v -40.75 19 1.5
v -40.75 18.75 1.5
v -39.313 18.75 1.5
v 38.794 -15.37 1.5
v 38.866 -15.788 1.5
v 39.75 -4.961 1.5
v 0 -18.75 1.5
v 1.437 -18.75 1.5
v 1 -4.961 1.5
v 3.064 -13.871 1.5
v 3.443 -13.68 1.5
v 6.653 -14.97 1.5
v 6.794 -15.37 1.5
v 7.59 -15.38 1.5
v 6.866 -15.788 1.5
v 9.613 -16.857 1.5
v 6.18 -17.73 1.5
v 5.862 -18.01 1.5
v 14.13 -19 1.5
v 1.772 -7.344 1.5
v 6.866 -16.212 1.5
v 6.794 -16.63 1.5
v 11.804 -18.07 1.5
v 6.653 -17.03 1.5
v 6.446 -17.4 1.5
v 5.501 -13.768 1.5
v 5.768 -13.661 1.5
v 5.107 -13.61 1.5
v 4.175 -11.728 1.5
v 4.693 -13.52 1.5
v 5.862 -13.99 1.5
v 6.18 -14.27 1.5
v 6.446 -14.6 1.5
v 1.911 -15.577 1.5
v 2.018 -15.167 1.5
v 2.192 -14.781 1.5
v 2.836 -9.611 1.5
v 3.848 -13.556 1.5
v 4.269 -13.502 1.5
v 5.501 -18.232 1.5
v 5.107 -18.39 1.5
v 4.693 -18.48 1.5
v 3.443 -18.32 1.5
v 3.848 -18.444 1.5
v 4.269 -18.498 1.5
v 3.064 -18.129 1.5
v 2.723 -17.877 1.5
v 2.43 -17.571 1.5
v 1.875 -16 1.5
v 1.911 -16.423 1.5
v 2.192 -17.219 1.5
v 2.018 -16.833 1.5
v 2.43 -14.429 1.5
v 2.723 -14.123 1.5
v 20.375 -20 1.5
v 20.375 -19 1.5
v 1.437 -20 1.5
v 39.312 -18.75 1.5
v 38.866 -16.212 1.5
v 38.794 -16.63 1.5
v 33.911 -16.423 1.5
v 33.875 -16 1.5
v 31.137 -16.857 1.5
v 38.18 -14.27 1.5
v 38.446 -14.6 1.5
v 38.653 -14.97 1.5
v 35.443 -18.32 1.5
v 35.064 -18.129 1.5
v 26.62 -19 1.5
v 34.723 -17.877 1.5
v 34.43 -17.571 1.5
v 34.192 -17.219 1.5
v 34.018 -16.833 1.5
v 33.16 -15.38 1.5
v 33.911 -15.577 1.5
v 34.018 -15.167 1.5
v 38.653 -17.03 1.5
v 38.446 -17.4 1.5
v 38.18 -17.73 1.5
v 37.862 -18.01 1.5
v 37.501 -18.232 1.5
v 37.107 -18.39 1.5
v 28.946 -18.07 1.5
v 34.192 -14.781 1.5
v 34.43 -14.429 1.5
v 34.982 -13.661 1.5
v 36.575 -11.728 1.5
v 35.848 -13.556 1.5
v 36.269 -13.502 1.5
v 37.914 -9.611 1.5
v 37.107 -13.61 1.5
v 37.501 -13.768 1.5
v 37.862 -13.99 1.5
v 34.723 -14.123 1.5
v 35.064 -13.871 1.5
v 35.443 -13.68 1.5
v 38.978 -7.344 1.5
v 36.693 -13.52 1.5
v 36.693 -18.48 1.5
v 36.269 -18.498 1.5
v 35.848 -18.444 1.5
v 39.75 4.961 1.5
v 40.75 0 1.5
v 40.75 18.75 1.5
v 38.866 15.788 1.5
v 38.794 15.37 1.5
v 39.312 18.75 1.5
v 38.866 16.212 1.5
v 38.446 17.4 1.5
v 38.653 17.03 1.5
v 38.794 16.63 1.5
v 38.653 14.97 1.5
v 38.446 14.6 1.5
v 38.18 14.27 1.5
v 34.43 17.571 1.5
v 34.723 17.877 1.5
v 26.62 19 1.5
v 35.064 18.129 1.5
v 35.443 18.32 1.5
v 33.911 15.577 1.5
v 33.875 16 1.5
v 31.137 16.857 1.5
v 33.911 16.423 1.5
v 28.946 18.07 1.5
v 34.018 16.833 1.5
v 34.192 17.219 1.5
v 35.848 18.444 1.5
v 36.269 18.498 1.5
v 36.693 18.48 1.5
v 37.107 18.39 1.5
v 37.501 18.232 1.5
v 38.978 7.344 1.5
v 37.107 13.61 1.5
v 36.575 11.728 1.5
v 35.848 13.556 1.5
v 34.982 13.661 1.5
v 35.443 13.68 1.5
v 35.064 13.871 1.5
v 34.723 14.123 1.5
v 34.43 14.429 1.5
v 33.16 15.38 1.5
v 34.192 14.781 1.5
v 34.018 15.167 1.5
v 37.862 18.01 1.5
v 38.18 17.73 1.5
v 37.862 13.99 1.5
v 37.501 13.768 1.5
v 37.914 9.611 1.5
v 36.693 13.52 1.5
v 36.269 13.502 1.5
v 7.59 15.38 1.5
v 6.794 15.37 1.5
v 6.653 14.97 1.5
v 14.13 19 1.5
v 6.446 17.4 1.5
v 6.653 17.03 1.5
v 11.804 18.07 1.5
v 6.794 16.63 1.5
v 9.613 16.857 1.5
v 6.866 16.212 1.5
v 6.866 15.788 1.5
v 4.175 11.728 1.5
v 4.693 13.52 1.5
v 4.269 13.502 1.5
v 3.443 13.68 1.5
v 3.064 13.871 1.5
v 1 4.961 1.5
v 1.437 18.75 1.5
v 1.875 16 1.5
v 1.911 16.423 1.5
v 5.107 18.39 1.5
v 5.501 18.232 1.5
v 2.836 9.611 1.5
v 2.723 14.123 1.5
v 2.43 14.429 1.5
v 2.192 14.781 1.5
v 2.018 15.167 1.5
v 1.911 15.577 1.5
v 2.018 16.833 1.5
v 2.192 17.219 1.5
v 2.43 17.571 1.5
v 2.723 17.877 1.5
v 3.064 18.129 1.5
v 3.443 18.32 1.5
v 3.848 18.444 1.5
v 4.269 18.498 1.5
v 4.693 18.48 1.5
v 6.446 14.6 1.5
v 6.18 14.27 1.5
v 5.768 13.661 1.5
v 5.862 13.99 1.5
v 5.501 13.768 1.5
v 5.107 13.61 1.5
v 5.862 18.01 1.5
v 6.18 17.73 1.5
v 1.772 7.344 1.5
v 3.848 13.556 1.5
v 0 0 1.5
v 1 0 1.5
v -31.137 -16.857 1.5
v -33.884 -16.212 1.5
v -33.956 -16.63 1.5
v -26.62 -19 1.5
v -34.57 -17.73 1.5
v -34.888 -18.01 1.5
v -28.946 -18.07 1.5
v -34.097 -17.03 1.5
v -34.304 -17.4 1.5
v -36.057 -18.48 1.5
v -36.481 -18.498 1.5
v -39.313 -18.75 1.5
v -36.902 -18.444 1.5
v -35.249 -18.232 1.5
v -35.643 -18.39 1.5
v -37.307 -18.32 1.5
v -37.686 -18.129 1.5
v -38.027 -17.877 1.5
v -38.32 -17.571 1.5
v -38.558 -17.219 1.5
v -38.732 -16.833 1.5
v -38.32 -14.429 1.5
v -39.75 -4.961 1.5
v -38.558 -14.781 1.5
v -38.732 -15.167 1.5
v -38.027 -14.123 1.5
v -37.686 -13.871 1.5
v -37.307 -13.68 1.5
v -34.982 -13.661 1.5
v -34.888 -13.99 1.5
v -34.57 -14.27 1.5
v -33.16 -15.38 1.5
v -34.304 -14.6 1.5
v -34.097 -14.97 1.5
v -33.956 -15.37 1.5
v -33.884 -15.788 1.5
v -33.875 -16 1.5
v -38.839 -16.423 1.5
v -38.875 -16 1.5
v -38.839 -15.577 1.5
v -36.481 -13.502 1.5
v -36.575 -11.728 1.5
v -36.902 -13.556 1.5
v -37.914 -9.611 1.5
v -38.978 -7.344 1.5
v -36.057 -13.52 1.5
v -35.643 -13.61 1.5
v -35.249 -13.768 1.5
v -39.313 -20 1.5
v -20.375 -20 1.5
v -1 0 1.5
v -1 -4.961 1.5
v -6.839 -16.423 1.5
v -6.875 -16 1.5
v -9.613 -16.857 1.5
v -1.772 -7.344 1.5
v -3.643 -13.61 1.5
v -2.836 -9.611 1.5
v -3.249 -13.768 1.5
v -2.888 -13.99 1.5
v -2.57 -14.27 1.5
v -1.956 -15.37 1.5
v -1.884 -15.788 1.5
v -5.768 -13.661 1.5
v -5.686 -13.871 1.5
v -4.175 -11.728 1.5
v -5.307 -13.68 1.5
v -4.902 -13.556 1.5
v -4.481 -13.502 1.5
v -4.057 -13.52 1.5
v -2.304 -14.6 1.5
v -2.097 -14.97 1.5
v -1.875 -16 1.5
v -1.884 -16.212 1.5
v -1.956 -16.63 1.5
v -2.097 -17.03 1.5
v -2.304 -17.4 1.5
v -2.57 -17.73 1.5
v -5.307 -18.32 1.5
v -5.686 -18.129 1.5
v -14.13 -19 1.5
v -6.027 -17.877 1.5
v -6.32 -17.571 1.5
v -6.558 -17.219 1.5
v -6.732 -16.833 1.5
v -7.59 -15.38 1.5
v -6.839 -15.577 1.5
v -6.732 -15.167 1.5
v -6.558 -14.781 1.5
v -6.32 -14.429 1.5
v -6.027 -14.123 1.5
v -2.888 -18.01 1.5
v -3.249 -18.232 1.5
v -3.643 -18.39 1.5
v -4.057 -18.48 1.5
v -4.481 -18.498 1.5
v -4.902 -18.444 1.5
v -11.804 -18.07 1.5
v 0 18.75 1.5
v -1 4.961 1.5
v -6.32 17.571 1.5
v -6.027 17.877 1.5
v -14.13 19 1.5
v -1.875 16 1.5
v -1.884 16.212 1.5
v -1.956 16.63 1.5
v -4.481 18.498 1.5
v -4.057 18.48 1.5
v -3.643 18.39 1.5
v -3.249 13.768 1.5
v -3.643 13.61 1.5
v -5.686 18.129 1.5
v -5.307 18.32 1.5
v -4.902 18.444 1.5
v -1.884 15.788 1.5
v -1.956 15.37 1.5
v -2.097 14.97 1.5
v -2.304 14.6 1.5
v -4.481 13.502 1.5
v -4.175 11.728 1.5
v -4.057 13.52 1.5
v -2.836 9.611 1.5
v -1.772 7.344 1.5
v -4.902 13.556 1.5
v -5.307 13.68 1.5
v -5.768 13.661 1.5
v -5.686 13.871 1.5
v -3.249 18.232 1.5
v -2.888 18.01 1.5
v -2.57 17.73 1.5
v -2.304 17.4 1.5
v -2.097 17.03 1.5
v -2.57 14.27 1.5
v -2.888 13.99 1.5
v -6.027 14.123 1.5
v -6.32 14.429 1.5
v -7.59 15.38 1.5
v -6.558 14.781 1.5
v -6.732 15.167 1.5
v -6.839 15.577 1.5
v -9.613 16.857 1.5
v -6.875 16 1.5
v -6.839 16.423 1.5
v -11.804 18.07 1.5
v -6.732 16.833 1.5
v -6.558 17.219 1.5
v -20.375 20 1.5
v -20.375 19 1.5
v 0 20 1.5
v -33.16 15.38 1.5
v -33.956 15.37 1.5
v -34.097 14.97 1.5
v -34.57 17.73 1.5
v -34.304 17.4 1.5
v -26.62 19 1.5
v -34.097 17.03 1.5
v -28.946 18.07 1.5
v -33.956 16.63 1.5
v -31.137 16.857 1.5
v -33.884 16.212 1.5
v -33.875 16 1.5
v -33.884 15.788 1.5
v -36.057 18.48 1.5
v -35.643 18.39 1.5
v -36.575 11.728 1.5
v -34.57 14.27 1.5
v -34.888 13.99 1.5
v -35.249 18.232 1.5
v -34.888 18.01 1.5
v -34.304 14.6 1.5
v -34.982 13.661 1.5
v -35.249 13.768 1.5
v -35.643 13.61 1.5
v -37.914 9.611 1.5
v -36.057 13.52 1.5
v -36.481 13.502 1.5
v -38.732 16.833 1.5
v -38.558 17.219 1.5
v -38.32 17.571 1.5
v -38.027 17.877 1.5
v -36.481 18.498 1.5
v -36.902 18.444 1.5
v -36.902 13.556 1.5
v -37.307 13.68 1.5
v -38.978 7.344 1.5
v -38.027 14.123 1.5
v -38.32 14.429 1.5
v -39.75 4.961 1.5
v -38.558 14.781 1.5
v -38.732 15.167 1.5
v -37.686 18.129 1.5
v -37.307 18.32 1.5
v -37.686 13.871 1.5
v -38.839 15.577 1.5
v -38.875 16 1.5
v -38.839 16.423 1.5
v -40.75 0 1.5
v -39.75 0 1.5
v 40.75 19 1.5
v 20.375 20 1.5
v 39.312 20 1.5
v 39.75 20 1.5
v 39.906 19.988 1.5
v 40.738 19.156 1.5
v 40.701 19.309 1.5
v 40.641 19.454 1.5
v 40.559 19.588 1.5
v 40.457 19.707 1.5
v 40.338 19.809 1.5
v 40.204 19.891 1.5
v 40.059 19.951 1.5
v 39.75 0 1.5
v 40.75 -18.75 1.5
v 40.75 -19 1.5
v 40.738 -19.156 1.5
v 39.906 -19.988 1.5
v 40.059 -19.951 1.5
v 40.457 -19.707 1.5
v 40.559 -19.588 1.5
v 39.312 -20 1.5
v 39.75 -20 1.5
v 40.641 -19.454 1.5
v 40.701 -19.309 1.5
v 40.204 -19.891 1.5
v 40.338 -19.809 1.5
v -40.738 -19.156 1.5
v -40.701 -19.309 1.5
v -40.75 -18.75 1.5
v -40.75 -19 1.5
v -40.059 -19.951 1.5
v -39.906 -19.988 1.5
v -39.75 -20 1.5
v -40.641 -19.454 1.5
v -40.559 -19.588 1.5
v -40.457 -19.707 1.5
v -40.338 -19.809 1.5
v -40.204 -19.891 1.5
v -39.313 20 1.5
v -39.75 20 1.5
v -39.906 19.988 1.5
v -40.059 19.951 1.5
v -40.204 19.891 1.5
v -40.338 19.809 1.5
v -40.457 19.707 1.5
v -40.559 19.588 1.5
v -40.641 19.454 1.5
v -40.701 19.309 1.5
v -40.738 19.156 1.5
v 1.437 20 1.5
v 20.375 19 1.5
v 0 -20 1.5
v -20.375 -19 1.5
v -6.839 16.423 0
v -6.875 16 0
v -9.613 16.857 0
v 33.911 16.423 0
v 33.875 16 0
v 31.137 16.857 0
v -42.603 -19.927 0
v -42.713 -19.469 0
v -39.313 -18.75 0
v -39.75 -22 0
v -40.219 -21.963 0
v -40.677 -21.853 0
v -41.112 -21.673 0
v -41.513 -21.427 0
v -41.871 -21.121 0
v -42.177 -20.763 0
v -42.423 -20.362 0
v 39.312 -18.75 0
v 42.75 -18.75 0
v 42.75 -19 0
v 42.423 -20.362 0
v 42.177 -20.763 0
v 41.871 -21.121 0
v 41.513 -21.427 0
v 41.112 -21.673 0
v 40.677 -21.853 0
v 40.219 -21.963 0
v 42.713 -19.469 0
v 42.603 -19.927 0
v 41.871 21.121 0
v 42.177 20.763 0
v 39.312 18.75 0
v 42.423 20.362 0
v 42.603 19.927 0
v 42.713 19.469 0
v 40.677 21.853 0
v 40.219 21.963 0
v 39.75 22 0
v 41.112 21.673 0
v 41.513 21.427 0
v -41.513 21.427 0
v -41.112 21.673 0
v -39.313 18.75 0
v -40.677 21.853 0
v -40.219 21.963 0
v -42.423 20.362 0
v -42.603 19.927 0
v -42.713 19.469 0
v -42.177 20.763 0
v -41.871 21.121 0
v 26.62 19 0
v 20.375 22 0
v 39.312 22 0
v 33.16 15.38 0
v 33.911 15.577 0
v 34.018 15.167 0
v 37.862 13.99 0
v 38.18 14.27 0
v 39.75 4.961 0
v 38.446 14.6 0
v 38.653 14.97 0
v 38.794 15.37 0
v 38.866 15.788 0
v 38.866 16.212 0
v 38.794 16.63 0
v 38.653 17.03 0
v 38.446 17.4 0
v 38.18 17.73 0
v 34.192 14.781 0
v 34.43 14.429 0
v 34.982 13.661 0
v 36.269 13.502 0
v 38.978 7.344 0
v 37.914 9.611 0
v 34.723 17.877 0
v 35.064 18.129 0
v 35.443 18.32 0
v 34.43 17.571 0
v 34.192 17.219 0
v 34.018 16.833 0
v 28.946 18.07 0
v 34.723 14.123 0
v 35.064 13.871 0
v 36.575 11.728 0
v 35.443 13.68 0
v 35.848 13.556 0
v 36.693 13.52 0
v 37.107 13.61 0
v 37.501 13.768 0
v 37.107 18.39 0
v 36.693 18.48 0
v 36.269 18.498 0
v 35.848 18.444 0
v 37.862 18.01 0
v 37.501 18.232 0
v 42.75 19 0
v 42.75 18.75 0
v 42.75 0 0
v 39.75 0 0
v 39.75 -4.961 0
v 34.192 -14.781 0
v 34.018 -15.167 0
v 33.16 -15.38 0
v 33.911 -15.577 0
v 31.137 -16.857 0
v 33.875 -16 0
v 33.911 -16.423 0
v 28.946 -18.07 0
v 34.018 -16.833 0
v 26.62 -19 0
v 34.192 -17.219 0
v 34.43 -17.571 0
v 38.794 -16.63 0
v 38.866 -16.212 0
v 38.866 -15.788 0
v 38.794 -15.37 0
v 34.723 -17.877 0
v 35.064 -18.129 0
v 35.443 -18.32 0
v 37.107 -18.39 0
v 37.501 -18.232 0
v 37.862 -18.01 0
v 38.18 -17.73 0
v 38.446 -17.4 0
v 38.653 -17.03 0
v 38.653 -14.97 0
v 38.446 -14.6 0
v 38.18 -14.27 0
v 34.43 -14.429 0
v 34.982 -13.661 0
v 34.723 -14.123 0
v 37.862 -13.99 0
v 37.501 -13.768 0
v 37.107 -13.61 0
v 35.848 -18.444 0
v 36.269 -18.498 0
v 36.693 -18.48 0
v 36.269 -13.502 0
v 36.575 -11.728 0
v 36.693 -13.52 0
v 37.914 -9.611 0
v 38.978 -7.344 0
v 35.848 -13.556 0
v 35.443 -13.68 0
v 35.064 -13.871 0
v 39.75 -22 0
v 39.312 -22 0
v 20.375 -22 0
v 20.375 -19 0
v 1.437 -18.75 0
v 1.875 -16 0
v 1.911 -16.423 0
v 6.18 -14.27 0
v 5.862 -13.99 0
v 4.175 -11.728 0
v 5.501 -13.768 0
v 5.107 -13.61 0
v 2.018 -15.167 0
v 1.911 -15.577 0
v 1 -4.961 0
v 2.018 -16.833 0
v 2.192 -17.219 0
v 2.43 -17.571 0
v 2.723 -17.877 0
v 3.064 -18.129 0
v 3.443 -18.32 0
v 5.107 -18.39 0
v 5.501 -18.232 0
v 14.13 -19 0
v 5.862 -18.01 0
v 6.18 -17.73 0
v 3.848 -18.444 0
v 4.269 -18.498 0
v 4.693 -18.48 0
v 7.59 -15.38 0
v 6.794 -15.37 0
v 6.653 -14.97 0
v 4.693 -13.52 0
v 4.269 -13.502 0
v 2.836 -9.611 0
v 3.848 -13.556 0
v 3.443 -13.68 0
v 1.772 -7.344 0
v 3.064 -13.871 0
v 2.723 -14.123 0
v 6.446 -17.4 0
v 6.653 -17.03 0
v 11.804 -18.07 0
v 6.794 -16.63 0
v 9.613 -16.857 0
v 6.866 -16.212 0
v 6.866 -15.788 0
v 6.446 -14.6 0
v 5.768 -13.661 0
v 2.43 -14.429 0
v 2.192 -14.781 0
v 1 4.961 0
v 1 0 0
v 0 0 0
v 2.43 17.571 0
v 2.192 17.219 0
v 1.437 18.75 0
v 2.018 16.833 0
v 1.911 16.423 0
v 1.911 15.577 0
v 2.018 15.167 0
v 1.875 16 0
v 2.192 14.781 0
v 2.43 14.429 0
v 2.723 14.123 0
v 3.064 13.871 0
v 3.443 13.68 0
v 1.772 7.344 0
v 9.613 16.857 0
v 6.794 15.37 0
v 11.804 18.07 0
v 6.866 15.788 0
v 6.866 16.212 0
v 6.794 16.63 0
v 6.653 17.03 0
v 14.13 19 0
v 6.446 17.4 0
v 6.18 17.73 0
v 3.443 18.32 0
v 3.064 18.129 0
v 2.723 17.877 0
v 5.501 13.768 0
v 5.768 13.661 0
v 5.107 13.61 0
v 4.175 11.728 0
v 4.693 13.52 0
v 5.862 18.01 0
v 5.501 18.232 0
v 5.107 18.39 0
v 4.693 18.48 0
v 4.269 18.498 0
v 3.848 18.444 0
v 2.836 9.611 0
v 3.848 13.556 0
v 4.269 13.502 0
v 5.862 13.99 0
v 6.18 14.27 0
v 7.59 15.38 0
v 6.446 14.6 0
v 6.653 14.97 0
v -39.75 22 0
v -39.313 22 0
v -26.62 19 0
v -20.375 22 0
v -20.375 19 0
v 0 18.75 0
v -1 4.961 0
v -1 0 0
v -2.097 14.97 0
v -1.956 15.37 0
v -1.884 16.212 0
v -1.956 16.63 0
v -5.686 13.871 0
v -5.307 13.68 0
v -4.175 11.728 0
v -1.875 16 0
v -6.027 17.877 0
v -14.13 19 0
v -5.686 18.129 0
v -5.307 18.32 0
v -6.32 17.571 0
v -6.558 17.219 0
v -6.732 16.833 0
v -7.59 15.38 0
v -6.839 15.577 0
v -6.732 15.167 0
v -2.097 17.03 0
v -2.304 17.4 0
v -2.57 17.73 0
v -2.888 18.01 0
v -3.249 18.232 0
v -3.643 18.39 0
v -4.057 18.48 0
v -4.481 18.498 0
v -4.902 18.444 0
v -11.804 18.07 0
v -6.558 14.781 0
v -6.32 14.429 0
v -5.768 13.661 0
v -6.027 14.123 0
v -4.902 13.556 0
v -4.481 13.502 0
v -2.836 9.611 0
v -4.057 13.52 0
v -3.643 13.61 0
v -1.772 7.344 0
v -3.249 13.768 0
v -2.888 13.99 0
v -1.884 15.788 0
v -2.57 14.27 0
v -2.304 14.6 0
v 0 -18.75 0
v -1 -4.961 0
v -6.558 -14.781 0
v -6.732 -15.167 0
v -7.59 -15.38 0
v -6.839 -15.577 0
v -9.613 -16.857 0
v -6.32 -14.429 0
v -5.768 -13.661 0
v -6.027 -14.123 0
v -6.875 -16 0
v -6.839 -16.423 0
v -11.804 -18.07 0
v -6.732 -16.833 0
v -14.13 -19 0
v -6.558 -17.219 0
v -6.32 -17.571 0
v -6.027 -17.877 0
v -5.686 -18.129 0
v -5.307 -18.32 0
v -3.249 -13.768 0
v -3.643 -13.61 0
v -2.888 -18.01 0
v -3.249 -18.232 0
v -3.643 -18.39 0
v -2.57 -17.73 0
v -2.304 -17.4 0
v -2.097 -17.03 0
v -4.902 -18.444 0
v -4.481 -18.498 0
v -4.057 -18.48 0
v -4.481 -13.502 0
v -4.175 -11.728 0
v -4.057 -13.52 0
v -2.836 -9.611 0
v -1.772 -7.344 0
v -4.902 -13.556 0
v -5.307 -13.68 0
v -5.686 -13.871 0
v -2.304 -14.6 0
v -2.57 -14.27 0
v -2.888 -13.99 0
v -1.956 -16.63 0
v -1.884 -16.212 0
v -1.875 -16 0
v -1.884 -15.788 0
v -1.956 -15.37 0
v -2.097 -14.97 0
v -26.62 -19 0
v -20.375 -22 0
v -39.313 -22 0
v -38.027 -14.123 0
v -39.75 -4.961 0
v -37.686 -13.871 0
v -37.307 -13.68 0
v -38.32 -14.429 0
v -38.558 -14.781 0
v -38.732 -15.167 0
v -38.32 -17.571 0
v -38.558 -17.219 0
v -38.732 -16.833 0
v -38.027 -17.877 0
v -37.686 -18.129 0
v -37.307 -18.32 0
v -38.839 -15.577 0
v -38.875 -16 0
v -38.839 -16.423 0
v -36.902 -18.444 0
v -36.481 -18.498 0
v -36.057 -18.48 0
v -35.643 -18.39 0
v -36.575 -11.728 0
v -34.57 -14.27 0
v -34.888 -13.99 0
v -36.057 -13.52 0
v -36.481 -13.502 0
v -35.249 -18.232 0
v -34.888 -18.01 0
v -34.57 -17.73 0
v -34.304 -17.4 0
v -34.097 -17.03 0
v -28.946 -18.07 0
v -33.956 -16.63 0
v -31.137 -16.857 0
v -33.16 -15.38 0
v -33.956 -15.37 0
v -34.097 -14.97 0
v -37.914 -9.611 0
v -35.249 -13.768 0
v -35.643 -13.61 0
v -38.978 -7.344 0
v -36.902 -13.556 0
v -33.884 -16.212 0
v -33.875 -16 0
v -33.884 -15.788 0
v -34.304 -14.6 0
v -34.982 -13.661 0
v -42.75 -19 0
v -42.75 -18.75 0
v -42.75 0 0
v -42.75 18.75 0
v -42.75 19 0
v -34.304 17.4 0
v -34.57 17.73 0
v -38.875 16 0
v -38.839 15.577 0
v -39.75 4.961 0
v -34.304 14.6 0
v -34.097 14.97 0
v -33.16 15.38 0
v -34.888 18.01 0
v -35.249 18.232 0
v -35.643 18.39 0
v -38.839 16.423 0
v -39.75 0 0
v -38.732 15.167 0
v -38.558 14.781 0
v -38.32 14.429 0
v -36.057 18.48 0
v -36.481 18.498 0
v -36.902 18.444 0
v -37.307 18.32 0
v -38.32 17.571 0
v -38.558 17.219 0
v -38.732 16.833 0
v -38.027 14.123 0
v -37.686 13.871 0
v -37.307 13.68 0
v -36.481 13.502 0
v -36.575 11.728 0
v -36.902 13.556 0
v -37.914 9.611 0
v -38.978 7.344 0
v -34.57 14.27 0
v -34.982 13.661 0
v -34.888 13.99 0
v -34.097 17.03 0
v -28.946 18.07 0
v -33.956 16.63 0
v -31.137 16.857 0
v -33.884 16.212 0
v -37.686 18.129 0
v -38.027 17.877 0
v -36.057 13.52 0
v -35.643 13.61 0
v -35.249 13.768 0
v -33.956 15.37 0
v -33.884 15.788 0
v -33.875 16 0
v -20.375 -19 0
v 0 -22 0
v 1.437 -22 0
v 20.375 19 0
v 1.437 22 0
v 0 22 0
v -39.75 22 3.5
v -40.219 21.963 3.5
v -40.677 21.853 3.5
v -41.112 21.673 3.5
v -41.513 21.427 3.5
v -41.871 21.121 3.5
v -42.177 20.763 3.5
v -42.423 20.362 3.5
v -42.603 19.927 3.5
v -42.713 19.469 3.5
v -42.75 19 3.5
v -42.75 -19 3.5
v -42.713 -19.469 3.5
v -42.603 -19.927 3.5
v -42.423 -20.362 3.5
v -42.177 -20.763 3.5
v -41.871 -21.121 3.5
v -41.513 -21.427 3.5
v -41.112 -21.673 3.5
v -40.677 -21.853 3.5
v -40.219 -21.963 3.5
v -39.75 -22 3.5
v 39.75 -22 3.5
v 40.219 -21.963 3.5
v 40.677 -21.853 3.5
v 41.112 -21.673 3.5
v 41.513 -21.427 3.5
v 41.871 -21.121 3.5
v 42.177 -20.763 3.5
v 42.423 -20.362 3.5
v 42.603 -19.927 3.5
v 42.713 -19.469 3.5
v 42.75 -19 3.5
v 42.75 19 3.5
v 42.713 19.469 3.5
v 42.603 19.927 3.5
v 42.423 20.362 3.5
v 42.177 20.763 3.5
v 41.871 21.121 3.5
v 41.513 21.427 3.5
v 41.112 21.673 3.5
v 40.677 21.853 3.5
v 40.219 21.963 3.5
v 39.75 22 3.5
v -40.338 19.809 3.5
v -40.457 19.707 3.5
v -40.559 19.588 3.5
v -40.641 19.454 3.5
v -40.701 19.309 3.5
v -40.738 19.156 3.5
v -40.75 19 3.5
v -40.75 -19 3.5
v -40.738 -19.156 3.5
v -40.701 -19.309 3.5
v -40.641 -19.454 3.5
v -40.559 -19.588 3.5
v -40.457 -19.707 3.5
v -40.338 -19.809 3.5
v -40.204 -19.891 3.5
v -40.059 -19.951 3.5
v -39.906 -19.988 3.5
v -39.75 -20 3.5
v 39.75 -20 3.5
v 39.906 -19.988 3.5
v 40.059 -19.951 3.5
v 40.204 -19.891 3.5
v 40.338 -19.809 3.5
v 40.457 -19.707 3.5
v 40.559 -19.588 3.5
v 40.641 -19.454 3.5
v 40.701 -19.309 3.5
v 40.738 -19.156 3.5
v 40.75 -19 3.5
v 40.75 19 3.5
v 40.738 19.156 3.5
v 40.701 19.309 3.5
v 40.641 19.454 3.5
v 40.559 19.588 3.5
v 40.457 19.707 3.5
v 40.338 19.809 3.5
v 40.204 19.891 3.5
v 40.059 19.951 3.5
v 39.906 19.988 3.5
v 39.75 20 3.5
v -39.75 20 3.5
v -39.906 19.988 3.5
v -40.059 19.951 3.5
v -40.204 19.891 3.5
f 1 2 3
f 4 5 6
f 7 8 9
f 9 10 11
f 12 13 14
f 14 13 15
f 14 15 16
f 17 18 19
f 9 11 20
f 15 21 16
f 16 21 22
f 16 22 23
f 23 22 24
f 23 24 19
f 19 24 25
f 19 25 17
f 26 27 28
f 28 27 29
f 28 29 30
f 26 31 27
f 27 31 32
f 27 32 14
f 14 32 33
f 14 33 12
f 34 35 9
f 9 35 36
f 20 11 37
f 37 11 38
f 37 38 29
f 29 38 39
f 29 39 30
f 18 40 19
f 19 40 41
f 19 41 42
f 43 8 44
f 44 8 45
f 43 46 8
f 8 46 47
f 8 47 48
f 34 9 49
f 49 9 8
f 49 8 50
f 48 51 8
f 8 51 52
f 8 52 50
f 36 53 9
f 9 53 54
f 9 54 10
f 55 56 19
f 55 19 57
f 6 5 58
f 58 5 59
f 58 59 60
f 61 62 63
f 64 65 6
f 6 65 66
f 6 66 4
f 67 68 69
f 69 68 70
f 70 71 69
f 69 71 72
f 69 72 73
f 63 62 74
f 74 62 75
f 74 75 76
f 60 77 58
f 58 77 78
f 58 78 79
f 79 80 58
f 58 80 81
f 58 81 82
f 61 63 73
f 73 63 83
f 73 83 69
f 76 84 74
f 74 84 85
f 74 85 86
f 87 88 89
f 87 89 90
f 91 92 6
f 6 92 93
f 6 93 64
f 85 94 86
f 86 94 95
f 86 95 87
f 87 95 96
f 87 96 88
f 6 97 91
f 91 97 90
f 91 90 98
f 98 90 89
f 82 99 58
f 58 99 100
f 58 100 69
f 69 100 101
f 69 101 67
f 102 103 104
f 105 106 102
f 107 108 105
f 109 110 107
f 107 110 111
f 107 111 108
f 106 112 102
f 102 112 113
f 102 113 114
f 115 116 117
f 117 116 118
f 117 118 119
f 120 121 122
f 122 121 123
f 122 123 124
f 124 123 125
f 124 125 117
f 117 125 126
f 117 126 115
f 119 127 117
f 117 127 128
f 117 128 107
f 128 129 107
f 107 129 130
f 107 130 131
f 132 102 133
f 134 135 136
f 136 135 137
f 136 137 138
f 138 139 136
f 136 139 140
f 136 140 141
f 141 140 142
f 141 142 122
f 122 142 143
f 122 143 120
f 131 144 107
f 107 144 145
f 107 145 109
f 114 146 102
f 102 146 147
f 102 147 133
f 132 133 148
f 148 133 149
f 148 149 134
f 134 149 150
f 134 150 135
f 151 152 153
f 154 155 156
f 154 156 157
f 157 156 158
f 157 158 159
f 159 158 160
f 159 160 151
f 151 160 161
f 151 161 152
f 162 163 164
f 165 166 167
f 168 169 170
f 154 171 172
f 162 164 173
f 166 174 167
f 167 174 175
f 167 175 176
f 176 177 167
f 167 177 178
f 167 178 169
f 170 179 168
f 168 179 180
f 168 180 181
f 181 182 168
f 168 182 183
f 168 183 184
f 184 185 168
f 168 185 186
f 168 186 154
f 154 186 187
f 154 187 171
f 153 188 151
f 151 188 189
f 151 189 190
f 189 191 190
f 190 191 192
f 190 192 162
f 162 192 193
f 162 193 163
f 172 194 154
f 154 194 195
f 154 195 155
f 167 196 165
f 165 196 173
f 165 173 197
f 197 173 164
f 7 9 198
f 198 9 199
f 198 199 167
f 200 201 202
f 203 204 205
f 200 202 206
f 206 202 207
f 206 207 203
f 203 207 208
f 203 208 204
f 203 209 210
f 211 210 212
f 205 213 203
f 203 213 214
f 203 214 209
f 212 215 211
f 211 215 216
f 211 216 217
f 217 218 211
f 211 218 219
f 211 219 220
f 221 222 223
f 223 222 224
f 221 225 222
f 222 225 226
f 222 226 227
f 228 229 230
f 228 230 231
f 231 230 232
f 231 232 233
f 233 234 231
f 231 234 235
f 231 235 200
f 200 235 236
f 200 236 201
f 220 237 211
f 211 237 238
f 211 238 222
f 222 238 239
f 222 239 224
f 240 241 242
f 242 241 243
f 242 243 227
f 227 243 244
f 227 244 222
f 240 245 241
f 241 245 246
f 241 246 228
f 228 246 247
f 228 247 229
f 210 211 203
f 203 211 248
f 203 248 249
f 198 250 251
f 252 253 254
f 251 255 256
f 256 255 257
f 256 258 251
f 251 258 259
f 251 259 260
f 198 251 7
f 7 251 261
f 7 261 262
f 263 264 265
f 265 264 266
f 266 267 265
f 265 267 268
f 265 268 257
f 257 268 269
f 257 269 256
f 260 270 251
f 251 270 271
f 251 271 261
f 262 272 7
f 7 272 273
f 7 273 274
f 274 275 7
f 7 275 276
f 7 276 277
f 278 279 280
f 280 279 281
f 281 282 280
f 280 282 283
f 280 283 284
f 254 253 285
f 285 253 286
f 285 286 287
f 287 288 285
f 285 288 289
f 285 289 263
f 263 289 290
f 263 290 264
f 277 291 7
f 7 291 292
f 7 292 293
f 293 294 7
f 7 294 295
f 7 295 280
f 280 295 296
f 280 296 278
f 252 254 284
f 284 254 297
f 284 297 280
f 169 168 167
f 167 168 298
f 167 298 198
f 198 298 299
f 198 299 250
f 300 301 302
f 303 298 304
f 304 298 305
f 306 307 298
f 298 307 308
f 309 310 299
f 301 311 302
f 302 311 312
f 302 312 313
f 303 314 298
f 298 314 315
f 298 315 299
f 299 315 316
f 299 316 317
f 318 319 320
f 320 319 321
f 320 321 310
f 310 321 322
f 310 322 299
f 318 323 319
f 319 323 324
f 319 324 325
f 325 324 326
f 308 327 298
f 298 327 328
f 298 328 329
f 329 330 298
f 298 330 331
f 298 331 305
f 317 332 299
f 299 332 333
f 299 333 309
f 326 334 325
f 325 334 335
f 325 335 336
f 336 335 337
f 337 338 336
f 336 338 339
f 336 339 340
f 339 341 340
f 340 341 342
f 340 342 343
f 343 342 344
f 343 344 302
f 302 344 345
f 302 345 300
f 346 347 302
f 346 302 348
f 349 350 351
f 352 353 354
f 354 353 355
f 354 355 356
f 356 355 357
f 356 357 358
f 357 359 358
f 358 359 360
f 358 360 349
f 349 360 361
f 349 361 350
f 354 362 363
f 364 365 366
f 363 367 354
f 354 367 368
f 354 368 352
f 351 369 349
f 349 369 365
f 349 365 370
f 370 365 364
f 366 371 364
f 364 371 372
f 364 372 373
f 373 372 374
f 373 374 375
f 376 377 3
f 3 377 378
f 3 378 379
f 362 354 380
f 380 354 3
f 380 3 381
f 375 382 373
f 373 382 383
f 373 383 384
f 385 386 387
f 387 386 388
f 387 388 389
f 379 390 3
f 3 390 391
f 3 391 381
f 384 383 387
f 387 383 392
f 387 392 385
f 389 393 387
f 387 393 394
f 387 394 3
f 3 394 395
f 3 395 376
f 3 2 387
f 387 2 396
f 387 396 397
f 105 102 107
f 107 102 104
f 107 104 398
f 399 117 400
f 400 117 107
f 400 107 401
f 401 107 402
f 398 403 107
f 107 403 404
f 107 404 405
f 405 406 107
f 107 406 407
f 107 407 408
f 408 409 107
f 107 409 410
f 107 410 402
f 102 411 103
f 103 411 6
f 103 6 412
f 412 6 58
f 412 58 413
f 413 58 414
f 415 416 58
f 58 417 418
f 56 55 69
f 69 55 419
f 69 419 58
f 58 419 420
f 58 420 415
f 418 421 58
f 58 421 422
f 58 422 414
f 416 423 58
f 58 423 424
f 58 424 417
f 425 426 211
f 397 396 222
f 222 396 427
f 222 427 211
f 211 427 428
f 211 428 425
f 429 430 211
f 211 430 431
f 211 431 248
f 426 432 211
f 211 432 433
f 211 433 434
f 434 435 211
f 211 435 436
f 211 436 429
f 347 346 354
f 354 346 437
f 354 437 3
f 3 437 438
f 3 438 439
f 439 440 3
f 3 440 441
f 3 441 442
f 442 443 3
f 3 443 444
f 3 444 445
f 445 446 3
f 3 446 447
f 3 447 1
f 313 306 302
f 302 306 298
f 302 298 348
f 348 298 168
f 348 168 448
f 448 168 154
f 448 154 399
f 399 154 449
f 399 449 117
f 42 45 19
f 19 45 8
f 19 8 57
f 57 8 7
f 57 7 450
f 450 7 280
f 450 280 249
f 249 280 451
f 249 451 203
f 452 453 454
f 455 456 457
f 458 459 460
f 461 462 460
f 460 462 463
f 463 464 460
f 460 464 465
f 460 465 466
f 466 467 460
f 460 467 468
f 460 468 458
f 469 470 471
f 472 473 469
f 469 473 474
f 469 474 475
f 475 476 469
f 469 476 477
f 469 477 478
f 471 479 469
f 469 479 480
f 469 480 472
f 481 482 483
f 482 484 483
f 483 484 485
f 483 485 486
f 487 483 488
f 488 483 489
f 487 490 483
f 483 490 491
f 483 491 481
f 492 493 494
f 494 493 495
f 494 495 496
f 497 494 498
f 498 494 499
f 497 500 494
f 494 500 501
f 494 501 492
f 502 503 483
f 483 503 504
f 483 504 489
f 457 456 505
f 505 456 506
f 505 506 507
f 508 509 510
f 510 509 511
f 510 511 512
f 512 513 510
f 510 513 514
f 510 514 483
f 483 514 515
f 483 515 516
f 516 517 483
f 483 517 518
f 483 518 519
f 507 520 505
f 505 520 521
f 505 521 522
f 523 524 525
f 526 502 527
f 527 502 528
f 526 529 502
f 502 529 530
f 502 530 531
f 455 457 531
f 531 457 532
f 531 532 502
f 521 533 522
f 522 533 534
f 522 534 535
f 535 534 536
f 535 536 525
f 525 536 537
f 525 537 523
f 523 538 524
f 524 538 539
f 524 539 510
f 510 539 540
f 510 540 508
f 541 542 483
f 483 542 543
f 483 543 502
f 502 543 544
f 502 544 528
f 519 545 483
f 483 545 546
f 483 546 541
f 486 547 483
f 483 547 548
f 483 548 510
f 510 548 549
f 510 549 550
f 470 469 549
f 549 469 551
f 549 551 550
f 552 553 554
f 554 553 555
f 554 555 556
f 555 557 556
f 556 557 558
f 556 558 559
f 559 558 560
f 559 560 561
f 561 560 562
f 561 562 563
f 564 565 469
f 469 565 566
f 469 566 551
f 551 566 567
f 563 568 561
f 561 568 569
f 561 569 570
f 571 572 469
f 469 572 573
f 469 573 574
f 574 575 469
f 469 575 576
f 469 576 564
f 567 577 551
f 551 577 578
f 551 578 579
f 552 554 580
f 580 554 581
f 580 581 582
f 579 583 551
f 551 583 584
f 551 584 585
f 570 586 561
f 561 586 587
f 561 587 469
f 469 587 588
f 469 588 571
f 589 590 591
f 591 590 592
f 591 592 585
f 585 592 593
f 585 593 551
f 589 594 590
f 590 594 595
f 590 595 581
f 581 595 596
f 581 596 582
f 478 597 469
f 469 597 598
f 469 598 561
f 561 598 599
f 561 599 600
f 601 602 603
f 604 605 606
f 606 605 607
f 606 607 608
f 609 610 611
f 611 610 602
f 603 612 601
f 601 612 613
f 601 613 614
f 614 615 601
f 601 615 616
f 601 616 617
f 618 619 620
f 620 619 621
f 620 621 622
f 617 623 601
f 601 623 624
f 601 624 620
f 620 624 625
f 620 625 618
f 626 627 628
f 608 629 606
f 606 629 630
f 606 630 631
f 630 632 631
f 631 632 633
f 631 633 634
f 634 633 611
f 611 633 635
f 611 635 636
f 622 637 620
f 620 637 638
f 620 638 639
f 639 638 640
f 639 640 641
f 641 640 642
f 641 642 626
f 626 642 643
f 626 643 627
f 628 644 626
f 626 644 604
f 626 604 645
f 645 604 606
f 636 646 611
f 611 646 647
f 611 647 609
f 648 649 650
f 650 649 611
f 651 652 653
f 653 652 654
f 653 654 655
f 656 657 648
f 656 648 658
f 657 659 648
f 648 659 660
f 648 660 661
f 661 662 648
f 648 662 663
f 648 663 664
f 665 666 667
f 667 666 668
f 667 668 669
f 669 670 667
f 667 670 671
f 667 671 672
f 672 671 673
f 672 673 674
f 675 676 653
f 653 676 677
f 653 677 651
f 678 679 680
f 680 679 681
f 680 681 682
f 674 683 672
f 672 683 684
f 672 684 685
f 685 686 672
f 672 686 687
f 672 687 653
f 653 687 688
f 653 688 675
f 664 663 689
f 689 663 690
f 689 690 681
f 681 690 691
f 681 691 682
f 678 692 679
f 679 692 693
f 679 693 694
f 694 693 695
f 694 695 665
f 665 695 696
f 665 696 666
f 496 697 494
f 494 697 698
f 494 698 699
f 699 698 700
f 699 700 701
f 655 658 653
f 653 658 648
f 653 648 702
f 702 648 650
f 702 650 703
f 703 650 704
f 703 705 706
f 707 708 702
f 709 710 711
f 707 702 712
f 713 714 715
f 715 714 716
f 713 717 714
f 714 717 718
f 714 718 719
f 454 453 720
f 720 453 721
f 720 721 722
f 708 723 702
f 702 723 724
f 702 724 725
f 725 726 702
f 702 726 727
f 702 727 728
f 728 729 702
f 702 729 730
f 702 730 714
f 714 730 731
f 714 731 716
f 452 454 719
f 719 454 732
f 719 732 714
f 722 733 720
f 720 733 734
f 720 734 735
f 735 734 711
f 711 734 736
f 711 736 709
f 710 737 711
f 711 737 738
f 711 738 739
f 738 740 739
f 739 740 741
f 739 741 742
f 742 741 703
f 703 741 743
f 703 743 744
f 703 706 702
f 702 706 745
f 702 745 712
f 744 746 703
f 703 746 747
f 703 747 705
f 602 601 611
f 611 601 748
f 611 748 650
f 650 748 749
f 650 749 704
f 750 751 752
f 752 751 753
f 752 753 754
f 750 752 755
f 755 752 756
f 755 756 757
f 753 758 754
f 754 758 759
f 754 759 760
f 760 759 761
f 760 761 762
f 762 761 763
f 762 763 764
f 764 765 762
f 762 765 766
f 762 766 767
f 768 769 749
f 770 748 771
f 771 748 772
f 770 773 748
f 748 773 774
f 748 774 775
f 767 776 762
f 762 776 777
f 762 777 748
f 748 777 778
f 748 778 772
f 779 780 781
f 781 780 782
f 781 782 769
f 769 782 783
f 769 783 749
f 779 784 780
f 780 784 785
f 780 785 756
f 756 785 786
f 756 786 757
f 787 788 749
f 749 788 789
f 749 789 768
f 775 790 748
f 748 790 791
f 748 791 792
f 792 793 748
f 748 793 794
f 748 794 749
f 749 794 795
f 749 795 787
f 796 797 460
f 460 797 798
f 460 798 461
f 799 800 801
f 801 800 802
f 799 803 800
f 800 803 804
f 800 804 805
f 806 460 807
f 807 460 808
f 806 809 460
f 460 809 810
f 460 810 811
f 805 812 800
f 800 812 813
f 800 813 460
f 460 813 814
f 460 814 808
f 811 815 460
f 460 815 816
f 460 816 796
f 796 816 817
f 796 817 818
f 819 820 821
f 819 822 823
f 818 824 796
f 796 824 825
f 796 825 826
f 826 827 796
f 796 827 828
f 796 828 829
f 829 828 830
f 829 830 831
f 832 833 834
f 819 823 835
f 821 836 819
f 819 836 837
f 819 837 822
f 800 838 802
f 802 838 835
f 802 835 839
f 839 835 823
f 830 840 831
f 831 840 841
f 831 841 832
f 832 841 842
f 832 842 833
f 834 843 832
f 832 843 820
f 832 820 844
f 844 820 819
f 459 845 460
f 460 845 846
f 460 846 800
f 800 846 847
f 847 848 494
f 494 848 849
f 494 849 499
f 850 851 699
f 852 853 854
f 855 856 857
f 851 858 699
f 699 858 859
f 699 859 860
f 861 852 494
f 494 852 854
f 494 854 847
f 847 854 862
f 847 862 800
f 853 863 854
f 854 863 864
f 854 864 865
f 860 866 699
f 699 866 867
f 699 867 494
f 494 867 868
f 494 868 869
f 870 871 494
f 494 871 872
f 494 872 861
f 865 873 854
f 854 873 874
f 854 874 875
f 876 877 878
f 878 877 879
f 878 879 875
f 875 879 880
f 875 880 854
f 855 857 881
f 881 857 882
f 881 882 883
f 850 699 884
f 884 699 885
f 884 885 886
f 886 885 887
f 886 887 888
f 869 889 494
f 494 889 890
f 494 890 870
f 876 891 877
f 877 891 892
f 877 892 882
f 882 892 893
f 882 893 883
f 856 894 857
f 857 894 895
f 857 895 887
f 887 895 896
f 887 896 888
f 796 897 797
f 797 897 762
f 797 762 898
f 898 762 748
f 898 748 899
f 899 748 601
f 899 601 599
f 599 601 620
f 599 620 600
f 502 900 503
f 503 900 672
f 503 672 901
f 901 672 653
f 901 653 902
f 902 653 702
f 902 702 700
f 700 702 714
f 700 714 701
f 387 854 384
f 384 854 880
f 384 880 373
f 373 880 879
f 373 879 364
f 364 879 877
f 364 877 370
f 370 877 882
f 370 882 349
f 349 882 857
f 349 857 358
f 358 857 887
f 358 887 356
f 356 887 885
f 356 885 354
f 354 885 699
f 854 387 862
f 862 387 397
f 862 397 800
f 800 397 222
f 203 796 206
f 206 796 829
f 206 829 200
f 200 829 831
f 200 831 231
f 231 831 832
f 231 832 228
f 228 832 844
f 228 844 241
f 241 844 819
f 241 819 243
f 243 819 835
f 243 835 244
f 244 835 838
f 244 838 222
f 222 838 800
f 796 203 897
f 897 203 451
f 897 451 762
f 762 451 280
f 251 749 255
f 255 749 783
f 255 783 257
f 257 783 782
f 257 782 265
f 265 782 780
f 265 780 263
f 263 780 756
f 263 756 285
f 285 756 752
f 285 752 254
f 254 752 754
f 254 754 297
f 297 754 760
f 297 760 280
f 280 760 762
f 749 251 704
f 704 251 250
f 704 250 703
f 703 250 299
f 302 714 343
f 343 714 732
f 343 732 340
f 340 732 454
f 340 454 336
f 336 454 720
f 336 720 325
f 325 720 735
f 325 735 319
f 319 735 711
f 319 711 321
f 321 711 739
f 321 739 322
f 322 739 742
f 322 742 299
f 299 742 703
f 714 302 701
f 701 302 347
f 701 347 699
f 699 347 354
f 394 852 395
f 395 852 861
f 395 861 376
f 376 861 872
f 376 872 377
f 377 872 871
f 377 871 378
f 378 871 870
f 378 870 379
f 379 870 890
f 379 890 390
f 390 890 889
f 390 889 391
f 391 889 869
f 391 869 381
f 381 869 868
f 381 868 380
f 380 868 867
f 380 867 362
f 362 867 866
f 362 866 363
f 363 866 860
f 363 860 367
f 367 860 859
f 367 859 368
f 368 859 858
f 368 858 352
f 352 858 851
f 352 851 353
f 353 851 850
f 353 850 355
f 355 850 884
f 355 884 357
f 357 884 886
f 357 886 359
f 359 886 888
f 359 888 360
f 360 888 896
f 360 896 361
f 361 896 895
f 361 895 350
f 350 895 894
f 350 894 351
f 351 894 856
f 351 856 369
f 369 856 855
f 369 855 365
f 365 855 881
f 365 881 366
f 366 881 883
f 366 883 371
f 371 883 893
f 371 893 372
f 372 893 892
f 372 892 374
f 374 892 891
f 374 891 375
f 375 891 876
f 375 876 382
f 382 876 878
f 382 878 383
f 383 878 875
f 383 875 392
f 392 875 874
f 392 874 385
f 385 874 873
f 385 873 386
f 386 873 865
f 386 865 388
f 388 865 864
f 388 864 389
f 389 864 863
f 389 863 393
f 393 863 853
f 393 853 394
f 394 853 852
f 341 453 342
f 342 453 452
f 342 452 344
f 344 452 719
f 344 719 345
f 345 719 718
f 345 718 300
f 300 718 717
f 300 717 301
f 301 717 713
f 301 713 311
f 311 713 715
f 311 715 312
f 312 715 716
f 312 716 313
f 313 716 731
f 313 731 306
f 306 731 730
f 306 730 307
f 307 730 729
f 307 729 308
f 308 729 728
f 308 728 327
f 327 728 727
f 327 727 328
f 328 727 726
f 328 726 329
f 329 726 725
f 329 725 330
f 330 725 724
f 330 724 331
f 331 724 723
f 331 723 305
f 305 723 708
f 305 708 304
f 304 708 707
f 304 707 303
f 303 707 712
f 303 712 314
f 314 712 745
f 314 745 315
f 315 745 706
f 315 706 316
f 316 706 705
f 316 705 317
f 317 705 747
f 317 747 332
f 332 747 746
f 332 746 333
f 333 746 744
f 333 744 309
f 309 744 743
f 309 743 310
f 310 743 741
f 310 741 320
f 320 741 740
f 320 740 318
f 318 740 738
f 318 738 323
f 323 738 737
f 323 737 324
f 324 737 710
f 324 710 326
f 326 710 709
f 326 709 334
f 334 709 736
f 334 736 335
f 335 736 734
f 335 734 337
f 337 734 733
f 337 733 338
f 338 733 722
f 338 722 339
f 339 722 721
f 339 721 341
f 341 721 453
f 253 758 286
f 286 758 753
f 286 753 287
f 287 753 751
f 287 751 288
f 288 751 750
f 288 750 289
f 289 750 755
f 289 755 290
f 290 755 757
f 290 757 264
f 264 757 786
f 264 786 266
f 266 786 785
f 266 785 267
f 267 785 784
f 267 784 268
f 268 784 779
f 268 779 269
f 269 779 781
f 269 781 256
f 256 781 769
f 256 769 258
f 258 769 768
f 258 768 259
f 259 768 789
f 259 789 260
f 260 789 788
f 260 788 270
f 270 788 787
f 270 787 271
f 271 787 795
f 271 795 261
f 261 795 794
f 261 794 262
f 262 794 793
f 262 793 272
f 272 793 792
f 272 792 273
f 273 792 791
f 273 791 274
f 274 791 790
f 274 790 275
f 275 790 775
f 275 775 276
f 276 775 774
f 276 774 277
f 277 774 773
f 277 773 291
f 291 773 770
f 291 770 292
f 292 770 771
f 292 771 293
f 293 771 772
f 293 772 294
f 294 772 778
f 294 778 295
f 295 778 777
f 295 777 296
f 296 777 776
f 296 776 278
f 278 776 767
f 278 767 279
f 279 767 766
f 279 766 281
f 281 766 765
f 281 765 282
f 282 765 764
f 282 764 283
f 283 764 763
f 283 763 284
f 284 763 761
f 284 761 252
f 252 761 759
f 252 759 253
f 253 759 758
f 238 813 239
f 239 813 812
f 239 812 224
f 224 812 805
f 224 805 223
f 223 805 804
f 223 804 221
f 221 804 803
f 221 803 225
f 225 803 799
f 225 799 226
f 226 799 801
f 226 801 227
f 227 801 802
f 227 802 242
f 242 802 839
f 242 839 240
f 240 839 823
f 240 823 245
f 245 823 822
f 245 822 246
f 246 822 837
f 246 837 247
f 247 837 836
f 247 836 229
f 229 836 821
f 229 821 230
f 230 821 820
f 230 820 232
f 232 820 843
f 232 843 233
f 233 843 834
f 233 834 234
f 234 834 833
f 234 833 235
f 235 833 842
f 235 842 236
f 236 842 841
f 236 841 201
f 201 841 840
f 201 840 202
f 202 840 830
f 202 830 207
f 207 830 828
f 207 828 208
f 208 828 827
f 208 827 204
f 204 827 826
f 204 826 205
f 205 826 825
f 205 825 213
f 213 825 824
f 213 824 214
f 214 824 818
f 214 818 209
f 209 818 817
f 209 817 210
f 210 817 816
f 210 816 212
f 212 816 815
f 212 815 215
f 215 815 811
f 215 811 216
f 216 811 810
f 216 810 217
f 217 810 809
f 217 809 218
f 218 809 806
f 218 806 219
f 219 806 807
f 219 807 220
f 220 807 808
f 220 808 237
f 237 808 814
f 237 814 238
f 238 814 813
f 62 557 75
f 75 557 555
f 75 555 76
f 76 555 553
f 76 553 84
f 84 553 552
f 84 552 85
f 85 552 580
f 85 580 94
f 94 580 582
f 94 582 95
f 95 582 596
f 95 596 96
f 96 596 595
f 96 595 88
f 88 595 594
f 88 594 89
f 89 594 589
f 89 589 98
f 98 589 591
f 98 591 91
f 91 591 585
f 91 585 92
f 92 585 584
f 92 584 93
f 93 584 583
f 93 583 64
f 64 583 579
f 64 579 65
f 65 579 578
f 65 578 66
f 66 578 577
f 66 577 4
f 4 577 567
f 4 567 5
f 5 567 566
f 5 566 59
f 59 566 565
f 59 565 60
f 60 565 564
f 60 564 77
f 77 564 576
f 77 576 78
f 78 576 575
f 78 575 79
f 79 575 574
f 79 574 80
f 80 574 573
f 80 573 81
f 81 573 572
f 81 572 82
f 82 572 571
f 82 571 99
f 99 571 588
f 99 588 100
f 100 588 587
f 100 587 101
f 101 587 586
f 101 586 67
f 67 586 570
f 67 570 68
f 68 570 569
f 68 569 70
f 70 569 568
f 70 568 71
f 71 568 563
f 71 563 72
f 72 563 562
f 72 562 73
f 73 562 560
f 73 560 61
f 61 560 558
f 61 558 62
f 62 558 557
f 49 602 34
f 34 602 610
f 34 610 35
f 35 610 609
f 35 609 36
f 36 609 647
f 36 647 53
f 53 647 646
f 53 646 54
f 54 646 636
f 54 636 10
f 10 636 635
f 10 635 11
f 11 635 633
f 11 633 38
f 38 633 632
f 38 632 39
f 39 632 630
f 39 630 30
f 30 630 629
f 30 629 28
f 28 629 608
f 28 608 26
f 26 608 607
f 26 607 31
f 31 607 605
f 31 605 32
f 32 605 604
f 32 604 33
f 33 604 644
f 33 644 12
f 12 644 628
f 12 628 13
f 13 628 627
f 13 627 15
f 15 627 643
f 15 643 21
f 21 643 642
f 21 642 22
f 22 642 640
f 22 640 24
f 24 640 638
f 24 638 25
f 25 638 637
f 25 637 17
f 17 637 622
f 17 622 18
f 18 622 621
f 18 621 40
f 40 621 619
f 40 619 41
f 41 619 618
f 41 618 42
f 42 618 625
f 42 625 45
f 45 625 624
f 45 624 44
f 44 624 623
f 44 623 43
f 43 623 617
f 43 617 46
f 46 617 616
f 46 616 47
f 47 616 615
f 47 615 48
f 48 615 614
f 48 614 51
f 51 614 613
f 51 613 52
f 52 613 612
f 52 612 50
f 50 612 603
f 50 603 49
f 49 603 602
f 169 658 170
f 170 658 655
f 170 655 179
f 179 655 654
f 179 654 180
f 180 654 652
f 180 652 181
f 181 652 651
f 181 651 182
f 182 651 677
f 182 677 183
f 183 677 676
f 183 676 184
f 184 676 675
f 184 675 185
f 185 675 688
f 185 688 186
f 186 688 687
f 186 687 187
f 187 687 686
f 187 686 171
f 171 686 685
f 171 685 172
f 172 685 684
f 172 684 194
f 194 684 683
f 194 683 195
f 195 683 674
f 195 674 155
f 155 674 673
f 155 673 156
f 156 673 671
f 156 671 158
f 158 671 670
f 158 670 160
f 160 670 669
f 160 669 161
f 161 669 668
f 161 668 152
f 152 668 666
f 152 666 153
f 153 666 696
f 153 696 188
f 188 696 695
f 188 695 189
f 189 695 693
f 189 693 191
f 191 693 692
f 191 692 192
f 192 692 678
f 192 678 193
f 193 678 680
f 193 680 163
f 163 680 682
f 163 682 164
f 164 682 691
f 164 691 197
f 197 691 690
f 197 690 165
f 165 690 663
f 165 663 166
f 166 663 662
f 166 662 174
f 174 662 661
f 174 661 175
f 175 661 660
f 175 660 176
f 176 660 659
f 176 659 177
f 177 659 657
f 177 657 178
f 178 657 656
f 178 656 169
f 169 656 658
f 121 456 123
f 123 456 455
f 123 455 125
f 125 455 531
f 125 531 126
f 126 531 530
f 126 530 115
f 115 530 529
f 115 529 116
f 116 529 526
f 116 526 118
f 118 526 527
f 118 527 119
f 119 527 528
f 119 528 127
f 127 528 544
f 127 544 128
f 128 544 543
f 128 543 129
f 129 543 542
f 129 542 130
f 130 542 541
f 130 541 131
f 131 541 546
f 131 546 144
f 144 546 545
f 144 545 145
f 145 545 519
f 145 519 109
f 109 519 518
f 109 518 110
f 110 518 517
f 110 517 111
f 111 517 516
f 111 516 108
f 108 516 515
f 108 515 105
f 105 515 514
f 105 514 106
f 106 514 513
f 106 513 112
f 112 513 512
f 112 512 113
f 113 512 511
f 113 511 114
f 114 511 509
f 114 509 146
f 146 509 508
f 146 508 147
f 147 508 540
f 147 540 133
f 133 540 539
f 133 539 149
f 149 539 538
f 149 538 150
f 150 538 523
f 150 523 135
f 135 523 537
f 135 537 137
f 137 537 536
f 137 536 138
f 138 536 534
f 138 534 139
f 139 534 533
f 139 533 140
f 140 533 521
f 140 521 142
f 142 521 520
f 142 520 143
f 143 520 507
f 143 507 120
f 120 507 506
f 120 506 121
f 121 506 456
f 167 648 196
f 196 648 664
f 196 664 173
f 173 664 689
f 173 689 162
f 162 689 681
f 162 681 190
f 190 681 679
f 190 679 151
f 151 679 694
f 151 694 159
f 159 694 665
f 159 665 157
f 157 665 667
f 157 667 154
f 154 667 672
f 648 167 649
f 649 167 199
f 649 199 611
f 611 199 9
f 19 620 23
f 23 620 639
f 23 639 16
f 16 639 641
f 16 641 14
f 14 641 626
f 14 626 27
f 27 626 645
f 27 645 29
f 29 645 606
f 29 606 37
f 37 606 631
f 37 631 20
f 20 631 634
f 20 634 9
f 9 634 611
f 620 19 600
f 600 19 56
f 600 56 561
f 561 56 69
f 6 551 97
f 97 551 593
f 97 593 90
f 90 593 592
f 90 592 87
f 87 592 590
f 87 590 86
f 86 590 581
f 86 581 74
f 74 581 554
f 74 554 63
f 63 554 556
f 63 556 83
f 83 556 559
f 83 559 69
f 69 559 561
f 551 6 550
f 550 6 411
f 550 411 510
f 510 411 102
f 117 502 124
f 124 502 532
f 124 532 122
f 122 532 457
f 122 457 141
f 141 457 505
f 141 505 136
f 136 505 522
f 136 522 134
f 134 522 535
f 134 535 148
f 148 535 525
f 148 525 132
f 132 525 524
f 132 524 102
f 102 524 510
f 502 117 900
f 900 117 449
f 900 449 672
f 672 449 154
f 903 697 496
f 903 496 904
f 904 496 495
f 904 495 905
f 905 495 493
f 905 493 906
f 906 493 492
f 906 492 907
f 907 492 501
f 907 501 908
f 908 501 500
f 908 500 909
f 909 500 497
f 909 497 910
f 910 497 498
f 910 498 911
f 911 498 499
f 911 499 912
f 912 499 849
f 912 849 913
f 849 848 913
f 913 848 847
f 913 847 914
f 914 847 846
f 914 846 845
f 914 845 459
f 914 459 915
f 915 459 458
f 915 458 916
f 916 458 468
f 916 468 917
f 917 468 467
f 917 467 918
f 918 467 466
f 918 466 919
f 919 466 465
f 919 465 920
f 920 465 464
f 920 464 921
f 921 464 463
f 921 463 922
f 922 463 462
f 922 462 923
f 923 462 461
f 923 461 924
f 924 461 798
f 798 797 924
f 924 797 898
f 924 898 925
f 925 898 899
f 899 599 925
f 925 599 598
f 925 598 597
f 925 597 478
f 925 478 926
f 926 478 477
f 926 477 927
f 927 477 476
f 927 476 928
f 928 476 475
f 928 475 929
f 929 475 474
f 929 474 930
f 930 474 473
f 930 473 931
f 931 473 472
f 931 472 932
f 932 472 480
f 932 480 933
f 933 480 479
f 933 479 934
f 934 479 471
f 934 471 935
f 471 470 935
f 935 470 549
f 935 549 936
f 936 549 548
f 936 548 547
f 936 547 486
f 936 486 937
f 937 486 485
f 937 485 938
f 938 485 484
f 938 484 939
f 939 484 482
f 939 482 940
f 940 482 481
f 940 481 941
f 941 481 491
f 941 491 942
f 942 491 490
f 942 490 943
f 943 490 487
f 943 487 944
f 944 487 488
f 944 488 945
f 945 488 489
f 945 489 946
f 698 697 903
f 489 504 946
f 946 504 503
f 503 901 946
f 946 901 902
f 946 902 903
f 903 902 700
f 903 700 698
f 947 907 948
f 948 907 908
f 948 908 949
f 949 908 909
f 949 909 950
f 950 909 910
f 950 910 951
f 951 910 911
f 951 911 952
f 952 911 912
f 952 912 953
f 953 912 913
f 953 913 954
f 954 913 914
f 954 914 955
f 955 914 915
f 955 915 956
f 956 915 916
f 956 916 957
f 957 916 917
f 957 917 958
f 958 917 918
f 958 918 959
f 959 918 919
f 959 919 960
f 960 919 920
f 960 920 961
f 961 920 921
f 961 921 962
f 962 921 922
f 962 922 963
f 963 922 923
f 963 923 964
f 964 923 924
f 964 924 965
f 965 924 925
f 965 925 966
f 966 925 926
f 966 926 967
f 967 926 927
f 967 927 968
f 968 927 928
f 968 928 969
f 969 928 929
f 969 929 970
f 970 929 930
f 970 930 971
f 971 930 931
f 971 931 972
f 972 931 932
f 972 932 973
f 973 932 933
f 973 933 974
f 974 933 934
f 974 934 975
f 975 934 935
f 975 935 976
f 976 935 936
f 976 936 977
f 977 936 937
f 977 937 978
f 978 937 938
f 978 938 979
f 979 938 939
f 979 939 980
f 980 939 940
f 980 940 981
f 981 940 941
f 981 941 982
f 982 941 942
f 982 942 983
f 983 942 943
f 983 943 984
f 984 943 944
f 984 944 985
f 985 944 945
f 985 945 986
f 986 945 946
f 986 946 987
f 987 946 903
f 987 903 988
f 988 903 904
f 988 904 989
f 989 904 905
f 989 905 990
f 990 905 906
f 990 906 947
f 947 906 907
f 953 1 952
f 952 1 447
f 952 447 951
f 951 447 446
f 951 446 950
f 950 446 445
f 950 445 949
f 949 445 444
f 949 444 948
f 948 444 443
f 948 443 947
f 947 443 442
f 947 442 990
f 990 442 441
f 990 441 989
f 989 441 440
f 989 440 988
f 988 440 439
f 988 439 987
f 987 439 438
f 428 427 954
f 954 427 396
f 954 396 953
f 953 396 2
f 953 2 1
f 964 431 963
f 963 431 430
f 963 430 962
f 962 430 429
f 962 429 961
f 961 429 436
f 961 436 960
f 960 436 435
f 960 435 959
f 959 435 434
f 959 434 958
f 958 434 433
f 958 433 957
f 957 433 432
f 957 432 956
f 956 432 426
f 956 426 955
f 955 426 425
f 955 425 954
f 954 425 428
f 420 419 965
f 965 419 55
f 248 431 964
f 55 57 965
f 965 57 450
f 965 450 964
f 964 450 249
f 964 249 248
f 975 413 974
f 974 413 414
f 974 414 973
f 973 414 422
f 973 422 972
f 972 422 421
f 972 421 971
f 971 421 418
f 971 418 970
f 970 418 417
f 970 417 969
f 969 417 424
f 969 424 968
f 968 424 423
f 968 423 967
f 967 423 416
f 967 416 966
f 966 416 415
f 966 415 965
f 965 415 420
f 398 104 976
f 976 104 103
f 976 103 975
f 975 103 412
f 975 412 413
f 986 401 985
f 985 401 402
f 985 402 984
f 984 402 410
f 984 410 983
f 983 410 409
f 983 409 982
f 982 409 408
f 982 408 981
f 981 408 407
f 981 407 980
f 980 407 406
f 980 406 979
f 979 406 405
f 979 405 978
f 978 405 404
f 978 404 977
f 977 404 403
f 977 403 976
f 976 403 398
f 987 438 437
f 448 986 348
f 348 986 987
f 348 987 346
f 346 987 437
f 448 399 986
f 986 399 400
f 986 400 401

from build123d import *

# Parameters (mm, degrees)
SKETCH1_R           = 2.5
BOSS_EXTRUDE1_DEPTH = 1.5
BOSS_EXTRUDE2_DEPTH = 3.5


with BuildPart() as part:
    # Sketch1 → Boss-Extrude1 (new body)
    with BuildSketch(Plane.XY):
        with BuildLine():
            Line((39.75, 20), (-39.75, 20))
            ThreePointArc((-39.75, 20), (-40.457106781, 19.707106781), (-40.75, 19))
            Line((-40.75, 19), (-40.75, -19))
            ThreePointArc((-40.75, -19), (-40.457106781, -19.707106781), (-39.75, -20))
            Line((-39.75, -20), (39.75, -20))
            ThreePointArc((39.75, -20), (40.457106781, -19.707106781), (40.75, -19))
            Line((40.75, -19), (40.75, 19))
            ThreePointArc((40.75, 19), (40.457106781, 19.707106781), (39.75, 20))
        make_face()
        with Locations((-36.375, 16)):
            Circle(SKETCH1_R, mode=Mode.SUBTRACT)
        with Locations((-4.375, 16)):
            Circle(SKETCH1_R, mode=Mode.SUBTRACT)
        with Locations((-4.375, -16)):
            Circle(SKETCH1_R, mode=Mode.SUBTRACT)
        with Locations((-36.375, -16)):
            Circle(SKETCH1_R, mode=Mode.SUBTRACT)
        with Locations(Location((36.375, -16, 0), (0, 0, 180))):
            Circle(SKETCH1_R, mode=Mode.SUBTRACT)
        with Locations(Location((4.375, -16, 0), (0, 0, 180))):
            Circle(SKETCH1_R, mode=Mode.SUBTRACT)
        with Locations(Location((4.375, 16, 0), (0, 0, 180))):
            Circle(SKETCH1_R, mode=Mode.SUBTRACT)
        with Locations(Location((36.375, 16, 0), (0, 0, 180))):
            Circle(SKETCH1_R, mode=Mode.SUBTRACT)
        with BuildLine():
            Line((26.619997998, 19), (14.130002002, 19))
            ThreePointArc((14.130002002, 19), (5.767776688, 13.661223485), (1, 4.960783708))
            Line((1, 4.960783708), (1, -4.960783708))
            ThreePointArc((1, -4.960783708), (5.767776688, -13.661223485), (14.130002002, -19))
            Line((14.130002002, -19), (26.619997998, -19))
            ThreePointArc((26.619997998, -19), (34.982223312, -13.661223485), (39.75, -4.960783708))
            Line((39.75, -4.960783708), (39.75, 4.960783708))
            ThreePointArc((39.75, 4.960783708), (34.982223312, 13.661223485), (26.619997998, 19))
        make_face(mode=Mode.SUBTRACT)
        with BuildLine():
            Line((-39.75, 4.960783708), (-39.75, -4.960783708))
            ThreePointArc((-39.75, -4.960783708), (-34.982223312, -13.661223485), (-26.619997998, -19))
            Line((-26.619997998, -19), (-14.130002002, -19))
            ThreePointArc((-14.130002002, -19), (-5.767776688, -13.661223485), (-1, -4.960783708))
            Line((-1, -4.960783708), (-1, 4.960783708))
            ThreePointArc((-1, 4.960783708), (-5.767776688, 13.661223485), (-14.130002002, 19))
            Line((-14.130002002, 19), (-26.619997998, 19))
            ThreePointArc((-26.619997998, 19), (-34.982223312, 13.661223485), (-39.75, 4.960783708))
        make_face(mode=Mode.SUBTRACT)
    extrude(amount=BOSS_EXTRUDE1_DEPTH)

    # Sketch2 → Boss-Extrude2 (add)
    with BuildSketch(Plane(origin=(0, 0, 0), x_dir=(-1, 0, 0), z_dir=(0, 0, -1))):
        with BuildLine():
            Line((39.75, 22), (-39.75, 22))
            ThreePointArc((-39.75, 22), (-41.871320344, 21.121320344), (-42.75, 19))
            Line((-42.75, 19), (-42.75, -19))
            ThreePointArc((-42.75, -19), (-41.871320344, -21.121320344), (-39.75, -22))
            Line((-39.75, -22), (39.75, -22))
            ThreePointArc((39.75, -22), (41.871320344, -21.121320344), (42.75, -19))
            Line((42.75, -19), (42.75, 19))
            ThreePointArc((42.75, 19), (41.871320344, 21.121320344), (39.75, 22))
        make_face()
        with BuildLine():
            Line((40.75, -19), (40.75, 19))
            ThreePointArc((40.75, 19), (40.457106781, 19.707106781), (39.75, 20))
            Line((39.75, 20), (-39.75, 20))
            ThreePointArc((-39.75, 20), (-40.457106781, 19.707106781), (-40.75, 19))
            Line((-40.75, 19), (-40.75, -19))
            ThreePointArc((-40.75, -19), (-40.457106781, -19.707106781), (-39.75, -20))
            Line((-39.75, -20), (39.75, -20))
            ThreePointArc((39.75, -20), (40.457106781, -19.707106781), (40.75, -19))
        make_face(mode=Mode.SUBTRACT)
    extrude(amount=-BOSS_EXTRUDE2_DEPTH)


solid = part.part
